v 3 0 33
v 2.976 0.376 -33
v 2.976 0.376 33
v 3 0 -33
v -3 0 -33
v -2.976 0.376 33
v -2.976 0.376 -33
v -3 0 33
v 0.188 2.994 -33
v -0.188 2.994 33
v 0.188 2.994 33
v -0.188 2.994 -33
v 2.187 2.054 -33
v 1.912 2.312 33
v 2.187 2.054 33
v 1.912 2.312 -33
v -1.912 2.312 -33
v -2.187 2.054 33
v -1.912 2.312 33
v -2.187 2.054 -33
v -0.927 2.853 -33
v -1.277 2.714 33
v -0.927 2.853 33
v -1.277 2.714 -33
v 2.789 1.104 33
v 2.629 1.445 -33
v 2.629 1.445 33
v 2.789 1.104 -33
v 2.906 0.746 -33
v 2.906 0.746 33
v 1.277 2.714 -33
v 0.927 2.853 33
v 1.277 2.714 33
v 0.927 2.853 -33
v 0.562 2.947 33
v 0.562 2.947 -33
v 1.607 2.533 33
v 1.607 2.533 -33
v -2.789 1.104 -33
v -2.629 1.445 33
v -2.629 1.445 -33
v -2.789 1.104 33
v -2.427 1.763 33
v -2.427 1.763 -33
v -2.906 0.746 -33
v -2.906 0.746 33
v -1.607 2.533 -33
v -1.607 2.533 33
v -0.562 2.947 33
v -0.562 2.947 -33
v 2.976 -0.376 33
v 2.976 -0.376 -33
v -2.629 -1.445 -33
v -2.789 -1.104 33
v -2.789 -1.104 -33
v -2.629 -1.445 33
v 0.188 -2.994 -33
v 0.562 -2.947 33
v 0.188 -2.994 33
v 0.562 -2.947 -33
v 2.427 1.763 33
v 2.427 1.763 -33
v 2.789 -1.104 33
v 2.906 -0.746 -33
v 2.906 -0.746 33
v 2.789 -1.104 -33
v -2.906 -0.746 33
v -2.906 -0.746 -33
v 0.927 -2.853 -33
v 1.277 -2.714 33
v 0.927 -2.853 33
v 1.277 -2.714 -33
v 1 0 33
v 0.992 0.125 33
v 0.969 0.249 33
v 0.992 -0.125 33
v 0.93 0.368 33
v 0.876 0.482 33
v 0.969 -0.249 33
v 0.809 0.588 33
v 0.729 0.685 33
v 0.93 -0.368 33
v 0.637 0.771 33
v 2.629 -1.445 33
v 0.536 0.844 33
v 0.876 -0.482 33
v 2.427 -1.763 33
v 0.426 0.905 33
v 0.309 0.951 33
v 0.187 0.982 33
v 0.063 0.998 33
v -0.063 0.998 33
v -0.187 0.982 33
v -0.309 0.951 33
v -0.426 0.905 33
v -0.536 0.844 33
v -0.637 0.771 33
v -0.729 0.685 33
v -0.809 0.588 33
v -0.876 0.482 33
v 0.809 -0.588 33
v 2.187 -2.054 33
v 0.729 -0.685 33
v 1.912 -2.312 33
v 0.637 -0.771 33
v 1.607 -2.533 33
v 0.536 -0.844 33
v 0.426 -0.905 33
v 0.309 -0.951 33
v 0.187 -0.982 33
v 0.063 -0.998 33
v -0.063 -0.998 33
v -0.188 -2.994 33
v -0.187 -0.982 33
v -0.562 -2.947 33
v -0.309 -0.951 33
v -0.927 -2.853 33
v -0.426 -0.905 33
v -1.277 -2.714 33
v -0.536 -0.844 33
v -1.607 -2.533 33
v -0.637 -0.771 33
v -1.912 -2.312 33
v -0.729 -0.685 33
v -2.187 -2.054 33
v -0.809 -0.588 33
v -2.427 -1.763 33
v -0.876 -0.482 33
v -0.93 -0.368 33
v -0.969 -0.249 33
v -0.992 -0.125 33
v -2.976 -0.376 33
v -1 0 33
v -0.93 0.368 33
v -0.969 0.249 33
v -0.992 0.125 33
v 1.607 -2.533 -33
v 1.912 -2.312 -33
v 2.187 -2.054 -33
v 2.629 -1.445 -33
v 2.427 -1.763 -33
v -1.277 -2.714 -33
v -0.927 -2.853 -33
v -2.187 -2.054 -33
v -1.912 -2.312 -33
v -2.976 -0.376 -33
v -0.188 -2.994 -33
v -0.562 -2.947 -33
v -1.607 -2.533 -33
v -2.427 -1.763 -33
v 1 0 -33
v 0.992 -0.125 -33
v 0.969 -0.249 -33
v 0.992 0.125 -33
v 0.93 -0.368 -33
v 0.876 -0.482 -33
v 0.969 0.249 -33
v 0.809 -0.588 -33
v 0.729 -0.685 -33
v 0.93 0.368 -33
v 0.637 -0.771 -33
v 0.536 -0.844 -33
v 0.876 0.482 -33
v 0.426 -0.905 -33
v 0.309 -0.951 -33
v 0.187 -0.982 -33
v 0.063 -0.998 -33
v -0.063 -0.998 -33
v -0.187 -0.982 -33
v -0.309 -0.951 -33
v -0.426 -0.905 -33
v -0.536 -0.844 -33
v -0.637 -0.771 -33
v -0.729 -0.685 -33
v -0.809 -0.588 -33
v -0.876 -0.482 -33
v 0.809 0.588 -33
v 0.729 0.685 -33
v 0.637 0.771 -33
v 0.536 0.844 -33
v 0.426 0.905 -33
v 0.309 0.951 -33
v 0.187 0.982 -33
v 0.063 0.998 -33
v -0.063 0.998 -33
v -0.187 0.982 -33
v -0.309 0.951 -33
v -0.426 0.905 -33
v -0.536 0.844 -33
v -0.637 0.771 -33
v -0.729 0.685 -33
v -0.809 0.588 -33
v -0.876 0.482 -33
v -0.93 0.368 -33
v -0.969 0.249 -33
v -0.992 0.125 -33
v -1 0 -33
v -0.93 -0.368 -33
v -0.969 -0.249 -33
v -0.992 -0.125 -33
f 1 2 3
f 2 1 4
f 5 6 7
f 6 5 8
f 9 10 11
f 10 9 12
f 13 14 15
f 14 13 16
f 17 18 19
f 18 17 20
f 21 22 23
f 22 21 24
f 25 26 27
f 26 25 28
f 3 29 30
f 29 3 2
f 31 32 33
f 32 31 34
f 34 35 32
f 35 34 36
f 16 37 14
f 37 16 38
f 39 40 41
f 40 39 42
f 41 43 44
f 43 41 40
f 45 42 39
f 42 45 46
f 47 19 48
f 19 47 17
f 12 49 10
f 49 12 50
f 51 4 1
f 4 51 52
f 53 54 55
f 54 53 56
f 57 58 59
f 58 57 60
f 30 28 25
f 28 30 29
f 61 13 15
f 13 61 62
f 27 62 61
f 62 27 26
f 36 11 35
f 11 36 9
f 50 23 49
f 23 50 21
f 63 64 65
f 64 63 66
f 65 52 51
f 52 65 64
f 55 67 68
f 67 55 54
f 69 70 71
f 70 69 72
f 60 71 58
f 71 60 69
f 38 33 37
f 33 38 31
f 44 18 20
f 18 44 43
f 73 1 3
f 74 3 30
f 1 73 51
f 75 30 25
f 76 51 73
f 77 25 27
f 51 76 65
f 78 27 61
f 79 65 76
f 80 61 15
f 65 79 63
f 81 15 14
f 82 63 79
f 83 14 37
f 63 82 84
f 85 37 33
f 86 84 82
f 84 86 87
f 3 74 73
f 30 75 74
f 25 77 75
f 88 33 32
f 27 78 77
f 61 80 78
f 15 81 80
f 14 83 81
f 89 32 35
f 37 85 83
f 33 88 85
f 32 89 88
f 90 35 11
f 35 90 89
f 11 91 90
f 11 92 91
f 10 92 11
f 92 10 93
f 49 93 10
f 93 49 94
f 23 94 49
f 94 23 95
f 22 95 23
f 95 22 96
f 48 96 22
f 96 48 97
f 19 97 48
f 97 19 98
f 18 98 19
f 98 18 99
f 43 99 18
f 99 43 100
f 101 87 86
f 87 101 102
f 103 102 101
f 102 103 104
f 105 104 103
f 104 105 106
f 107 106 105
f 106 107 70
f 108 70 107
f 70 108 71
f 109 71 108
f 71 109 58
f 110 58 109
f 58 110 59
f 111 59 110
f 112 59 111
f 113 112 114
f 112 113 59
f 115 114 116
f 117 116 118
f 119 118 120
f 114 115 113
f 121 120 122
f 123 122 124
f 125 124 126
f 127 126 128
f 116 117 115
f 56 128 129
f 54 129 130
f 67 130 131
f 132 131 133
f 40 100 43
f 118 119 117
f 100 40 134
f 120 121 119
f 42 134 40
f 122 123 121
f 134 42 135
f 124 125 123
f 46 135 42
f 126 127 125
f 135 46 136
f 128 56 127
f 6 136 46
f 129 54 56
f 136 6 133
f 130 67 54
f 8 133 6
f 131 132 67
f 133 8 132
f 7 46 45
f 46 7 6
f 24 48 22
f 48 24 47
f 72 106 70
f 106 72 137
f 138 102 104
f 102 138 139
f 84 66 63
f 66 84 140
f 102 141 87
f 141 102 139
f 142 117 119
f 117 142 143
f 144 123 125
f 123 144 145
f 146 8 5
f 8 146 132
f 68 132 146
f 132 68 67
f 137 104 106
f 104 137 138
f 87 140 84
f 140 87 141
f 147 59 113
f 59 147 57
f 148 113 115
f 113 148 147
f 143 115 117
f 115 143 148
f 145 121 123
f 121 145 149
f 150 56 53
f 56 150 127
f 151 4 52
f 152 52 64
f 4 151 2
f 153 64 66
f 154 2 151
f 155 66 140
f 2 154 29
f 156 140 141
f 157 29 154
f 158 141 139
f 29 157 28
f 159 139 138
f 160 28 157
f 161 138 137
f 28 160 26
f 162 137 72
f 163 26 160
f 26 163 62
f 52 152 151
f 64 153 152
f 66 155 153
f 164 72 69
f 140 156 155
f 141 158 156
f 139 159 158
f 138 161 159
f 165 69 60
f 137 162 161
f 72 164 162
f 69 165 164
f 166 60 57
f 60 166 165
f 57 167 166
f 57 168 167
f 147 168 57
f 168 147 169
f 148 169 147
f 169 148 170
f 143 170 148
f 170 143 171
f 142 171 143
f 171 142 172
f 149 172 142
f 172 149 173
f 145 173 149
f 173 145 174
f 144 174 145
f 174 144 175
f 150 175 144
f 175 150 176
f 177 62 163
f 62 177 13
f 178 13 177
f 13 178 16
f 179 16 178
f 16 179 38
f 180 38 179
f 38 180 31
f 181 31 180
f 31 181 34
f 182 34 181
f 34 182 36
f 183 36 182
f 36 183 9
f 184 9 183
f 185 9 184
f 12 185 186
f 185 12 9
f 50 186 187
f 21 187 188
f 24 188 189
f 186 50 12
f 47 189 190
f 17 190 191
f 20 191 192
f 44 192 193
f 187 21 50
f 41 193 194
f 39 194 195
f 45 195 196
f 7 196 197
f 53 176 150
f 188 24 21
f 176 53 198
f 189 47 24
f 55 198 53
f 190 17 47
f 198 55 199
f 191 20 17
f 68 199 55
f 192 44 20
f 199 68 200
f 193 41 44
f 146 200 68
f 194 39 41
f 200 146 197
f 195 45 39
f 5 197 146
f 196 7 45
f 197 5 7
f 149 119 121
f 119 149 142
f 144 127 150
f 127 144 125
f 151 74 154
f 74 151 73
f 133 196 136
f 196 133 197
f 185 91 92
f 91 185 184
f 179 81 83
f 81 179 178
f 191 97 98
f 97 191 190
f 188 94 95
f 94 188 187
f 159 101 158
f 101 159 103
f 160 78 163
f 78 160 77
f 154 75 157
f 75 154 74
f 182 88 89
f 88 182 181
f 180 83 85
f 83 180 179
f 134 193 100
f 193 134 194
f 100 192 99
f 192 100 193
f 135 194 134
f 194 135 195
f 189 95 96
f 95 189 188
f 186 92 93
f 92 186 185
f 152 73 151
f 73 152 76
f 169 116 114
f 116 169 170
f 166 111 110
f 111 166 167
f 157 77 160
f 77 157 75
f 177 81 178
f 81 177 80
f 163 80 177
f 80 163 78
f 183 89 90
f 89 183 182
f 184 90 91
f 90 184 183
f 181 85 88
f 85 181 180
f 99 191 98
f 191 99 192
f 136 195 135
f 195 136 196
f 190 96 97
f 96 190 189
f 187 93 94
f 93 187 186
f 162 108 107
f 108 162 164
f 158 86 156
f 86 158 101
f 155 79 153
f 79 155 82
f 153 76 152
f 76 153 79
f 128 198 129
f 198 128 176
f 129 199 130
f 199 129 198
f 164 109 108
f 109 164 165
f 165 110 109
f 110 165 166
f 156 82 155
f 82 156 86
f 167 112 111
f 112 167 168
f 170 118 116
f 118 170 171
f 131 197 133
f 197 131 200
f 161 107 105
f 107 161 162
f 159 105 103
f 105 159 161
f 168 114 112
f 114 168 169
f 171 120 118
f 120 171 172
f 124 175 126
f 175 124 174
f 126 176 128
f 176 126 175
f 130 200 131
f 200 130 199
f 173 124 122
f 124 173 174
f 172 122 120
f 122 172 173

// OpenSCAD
$fn = 50;


difference() {
	union() {
		translate(v = [0, 0, -33.0000000000]) {
			cylinder(h = 66, r = 3.0000000000);
		}
	}
	union() {
		translate(v = [0, 0, -100.0000000000]) {
			cylinder(h = 200, r = 1.0000000000);
		}
	}
}
